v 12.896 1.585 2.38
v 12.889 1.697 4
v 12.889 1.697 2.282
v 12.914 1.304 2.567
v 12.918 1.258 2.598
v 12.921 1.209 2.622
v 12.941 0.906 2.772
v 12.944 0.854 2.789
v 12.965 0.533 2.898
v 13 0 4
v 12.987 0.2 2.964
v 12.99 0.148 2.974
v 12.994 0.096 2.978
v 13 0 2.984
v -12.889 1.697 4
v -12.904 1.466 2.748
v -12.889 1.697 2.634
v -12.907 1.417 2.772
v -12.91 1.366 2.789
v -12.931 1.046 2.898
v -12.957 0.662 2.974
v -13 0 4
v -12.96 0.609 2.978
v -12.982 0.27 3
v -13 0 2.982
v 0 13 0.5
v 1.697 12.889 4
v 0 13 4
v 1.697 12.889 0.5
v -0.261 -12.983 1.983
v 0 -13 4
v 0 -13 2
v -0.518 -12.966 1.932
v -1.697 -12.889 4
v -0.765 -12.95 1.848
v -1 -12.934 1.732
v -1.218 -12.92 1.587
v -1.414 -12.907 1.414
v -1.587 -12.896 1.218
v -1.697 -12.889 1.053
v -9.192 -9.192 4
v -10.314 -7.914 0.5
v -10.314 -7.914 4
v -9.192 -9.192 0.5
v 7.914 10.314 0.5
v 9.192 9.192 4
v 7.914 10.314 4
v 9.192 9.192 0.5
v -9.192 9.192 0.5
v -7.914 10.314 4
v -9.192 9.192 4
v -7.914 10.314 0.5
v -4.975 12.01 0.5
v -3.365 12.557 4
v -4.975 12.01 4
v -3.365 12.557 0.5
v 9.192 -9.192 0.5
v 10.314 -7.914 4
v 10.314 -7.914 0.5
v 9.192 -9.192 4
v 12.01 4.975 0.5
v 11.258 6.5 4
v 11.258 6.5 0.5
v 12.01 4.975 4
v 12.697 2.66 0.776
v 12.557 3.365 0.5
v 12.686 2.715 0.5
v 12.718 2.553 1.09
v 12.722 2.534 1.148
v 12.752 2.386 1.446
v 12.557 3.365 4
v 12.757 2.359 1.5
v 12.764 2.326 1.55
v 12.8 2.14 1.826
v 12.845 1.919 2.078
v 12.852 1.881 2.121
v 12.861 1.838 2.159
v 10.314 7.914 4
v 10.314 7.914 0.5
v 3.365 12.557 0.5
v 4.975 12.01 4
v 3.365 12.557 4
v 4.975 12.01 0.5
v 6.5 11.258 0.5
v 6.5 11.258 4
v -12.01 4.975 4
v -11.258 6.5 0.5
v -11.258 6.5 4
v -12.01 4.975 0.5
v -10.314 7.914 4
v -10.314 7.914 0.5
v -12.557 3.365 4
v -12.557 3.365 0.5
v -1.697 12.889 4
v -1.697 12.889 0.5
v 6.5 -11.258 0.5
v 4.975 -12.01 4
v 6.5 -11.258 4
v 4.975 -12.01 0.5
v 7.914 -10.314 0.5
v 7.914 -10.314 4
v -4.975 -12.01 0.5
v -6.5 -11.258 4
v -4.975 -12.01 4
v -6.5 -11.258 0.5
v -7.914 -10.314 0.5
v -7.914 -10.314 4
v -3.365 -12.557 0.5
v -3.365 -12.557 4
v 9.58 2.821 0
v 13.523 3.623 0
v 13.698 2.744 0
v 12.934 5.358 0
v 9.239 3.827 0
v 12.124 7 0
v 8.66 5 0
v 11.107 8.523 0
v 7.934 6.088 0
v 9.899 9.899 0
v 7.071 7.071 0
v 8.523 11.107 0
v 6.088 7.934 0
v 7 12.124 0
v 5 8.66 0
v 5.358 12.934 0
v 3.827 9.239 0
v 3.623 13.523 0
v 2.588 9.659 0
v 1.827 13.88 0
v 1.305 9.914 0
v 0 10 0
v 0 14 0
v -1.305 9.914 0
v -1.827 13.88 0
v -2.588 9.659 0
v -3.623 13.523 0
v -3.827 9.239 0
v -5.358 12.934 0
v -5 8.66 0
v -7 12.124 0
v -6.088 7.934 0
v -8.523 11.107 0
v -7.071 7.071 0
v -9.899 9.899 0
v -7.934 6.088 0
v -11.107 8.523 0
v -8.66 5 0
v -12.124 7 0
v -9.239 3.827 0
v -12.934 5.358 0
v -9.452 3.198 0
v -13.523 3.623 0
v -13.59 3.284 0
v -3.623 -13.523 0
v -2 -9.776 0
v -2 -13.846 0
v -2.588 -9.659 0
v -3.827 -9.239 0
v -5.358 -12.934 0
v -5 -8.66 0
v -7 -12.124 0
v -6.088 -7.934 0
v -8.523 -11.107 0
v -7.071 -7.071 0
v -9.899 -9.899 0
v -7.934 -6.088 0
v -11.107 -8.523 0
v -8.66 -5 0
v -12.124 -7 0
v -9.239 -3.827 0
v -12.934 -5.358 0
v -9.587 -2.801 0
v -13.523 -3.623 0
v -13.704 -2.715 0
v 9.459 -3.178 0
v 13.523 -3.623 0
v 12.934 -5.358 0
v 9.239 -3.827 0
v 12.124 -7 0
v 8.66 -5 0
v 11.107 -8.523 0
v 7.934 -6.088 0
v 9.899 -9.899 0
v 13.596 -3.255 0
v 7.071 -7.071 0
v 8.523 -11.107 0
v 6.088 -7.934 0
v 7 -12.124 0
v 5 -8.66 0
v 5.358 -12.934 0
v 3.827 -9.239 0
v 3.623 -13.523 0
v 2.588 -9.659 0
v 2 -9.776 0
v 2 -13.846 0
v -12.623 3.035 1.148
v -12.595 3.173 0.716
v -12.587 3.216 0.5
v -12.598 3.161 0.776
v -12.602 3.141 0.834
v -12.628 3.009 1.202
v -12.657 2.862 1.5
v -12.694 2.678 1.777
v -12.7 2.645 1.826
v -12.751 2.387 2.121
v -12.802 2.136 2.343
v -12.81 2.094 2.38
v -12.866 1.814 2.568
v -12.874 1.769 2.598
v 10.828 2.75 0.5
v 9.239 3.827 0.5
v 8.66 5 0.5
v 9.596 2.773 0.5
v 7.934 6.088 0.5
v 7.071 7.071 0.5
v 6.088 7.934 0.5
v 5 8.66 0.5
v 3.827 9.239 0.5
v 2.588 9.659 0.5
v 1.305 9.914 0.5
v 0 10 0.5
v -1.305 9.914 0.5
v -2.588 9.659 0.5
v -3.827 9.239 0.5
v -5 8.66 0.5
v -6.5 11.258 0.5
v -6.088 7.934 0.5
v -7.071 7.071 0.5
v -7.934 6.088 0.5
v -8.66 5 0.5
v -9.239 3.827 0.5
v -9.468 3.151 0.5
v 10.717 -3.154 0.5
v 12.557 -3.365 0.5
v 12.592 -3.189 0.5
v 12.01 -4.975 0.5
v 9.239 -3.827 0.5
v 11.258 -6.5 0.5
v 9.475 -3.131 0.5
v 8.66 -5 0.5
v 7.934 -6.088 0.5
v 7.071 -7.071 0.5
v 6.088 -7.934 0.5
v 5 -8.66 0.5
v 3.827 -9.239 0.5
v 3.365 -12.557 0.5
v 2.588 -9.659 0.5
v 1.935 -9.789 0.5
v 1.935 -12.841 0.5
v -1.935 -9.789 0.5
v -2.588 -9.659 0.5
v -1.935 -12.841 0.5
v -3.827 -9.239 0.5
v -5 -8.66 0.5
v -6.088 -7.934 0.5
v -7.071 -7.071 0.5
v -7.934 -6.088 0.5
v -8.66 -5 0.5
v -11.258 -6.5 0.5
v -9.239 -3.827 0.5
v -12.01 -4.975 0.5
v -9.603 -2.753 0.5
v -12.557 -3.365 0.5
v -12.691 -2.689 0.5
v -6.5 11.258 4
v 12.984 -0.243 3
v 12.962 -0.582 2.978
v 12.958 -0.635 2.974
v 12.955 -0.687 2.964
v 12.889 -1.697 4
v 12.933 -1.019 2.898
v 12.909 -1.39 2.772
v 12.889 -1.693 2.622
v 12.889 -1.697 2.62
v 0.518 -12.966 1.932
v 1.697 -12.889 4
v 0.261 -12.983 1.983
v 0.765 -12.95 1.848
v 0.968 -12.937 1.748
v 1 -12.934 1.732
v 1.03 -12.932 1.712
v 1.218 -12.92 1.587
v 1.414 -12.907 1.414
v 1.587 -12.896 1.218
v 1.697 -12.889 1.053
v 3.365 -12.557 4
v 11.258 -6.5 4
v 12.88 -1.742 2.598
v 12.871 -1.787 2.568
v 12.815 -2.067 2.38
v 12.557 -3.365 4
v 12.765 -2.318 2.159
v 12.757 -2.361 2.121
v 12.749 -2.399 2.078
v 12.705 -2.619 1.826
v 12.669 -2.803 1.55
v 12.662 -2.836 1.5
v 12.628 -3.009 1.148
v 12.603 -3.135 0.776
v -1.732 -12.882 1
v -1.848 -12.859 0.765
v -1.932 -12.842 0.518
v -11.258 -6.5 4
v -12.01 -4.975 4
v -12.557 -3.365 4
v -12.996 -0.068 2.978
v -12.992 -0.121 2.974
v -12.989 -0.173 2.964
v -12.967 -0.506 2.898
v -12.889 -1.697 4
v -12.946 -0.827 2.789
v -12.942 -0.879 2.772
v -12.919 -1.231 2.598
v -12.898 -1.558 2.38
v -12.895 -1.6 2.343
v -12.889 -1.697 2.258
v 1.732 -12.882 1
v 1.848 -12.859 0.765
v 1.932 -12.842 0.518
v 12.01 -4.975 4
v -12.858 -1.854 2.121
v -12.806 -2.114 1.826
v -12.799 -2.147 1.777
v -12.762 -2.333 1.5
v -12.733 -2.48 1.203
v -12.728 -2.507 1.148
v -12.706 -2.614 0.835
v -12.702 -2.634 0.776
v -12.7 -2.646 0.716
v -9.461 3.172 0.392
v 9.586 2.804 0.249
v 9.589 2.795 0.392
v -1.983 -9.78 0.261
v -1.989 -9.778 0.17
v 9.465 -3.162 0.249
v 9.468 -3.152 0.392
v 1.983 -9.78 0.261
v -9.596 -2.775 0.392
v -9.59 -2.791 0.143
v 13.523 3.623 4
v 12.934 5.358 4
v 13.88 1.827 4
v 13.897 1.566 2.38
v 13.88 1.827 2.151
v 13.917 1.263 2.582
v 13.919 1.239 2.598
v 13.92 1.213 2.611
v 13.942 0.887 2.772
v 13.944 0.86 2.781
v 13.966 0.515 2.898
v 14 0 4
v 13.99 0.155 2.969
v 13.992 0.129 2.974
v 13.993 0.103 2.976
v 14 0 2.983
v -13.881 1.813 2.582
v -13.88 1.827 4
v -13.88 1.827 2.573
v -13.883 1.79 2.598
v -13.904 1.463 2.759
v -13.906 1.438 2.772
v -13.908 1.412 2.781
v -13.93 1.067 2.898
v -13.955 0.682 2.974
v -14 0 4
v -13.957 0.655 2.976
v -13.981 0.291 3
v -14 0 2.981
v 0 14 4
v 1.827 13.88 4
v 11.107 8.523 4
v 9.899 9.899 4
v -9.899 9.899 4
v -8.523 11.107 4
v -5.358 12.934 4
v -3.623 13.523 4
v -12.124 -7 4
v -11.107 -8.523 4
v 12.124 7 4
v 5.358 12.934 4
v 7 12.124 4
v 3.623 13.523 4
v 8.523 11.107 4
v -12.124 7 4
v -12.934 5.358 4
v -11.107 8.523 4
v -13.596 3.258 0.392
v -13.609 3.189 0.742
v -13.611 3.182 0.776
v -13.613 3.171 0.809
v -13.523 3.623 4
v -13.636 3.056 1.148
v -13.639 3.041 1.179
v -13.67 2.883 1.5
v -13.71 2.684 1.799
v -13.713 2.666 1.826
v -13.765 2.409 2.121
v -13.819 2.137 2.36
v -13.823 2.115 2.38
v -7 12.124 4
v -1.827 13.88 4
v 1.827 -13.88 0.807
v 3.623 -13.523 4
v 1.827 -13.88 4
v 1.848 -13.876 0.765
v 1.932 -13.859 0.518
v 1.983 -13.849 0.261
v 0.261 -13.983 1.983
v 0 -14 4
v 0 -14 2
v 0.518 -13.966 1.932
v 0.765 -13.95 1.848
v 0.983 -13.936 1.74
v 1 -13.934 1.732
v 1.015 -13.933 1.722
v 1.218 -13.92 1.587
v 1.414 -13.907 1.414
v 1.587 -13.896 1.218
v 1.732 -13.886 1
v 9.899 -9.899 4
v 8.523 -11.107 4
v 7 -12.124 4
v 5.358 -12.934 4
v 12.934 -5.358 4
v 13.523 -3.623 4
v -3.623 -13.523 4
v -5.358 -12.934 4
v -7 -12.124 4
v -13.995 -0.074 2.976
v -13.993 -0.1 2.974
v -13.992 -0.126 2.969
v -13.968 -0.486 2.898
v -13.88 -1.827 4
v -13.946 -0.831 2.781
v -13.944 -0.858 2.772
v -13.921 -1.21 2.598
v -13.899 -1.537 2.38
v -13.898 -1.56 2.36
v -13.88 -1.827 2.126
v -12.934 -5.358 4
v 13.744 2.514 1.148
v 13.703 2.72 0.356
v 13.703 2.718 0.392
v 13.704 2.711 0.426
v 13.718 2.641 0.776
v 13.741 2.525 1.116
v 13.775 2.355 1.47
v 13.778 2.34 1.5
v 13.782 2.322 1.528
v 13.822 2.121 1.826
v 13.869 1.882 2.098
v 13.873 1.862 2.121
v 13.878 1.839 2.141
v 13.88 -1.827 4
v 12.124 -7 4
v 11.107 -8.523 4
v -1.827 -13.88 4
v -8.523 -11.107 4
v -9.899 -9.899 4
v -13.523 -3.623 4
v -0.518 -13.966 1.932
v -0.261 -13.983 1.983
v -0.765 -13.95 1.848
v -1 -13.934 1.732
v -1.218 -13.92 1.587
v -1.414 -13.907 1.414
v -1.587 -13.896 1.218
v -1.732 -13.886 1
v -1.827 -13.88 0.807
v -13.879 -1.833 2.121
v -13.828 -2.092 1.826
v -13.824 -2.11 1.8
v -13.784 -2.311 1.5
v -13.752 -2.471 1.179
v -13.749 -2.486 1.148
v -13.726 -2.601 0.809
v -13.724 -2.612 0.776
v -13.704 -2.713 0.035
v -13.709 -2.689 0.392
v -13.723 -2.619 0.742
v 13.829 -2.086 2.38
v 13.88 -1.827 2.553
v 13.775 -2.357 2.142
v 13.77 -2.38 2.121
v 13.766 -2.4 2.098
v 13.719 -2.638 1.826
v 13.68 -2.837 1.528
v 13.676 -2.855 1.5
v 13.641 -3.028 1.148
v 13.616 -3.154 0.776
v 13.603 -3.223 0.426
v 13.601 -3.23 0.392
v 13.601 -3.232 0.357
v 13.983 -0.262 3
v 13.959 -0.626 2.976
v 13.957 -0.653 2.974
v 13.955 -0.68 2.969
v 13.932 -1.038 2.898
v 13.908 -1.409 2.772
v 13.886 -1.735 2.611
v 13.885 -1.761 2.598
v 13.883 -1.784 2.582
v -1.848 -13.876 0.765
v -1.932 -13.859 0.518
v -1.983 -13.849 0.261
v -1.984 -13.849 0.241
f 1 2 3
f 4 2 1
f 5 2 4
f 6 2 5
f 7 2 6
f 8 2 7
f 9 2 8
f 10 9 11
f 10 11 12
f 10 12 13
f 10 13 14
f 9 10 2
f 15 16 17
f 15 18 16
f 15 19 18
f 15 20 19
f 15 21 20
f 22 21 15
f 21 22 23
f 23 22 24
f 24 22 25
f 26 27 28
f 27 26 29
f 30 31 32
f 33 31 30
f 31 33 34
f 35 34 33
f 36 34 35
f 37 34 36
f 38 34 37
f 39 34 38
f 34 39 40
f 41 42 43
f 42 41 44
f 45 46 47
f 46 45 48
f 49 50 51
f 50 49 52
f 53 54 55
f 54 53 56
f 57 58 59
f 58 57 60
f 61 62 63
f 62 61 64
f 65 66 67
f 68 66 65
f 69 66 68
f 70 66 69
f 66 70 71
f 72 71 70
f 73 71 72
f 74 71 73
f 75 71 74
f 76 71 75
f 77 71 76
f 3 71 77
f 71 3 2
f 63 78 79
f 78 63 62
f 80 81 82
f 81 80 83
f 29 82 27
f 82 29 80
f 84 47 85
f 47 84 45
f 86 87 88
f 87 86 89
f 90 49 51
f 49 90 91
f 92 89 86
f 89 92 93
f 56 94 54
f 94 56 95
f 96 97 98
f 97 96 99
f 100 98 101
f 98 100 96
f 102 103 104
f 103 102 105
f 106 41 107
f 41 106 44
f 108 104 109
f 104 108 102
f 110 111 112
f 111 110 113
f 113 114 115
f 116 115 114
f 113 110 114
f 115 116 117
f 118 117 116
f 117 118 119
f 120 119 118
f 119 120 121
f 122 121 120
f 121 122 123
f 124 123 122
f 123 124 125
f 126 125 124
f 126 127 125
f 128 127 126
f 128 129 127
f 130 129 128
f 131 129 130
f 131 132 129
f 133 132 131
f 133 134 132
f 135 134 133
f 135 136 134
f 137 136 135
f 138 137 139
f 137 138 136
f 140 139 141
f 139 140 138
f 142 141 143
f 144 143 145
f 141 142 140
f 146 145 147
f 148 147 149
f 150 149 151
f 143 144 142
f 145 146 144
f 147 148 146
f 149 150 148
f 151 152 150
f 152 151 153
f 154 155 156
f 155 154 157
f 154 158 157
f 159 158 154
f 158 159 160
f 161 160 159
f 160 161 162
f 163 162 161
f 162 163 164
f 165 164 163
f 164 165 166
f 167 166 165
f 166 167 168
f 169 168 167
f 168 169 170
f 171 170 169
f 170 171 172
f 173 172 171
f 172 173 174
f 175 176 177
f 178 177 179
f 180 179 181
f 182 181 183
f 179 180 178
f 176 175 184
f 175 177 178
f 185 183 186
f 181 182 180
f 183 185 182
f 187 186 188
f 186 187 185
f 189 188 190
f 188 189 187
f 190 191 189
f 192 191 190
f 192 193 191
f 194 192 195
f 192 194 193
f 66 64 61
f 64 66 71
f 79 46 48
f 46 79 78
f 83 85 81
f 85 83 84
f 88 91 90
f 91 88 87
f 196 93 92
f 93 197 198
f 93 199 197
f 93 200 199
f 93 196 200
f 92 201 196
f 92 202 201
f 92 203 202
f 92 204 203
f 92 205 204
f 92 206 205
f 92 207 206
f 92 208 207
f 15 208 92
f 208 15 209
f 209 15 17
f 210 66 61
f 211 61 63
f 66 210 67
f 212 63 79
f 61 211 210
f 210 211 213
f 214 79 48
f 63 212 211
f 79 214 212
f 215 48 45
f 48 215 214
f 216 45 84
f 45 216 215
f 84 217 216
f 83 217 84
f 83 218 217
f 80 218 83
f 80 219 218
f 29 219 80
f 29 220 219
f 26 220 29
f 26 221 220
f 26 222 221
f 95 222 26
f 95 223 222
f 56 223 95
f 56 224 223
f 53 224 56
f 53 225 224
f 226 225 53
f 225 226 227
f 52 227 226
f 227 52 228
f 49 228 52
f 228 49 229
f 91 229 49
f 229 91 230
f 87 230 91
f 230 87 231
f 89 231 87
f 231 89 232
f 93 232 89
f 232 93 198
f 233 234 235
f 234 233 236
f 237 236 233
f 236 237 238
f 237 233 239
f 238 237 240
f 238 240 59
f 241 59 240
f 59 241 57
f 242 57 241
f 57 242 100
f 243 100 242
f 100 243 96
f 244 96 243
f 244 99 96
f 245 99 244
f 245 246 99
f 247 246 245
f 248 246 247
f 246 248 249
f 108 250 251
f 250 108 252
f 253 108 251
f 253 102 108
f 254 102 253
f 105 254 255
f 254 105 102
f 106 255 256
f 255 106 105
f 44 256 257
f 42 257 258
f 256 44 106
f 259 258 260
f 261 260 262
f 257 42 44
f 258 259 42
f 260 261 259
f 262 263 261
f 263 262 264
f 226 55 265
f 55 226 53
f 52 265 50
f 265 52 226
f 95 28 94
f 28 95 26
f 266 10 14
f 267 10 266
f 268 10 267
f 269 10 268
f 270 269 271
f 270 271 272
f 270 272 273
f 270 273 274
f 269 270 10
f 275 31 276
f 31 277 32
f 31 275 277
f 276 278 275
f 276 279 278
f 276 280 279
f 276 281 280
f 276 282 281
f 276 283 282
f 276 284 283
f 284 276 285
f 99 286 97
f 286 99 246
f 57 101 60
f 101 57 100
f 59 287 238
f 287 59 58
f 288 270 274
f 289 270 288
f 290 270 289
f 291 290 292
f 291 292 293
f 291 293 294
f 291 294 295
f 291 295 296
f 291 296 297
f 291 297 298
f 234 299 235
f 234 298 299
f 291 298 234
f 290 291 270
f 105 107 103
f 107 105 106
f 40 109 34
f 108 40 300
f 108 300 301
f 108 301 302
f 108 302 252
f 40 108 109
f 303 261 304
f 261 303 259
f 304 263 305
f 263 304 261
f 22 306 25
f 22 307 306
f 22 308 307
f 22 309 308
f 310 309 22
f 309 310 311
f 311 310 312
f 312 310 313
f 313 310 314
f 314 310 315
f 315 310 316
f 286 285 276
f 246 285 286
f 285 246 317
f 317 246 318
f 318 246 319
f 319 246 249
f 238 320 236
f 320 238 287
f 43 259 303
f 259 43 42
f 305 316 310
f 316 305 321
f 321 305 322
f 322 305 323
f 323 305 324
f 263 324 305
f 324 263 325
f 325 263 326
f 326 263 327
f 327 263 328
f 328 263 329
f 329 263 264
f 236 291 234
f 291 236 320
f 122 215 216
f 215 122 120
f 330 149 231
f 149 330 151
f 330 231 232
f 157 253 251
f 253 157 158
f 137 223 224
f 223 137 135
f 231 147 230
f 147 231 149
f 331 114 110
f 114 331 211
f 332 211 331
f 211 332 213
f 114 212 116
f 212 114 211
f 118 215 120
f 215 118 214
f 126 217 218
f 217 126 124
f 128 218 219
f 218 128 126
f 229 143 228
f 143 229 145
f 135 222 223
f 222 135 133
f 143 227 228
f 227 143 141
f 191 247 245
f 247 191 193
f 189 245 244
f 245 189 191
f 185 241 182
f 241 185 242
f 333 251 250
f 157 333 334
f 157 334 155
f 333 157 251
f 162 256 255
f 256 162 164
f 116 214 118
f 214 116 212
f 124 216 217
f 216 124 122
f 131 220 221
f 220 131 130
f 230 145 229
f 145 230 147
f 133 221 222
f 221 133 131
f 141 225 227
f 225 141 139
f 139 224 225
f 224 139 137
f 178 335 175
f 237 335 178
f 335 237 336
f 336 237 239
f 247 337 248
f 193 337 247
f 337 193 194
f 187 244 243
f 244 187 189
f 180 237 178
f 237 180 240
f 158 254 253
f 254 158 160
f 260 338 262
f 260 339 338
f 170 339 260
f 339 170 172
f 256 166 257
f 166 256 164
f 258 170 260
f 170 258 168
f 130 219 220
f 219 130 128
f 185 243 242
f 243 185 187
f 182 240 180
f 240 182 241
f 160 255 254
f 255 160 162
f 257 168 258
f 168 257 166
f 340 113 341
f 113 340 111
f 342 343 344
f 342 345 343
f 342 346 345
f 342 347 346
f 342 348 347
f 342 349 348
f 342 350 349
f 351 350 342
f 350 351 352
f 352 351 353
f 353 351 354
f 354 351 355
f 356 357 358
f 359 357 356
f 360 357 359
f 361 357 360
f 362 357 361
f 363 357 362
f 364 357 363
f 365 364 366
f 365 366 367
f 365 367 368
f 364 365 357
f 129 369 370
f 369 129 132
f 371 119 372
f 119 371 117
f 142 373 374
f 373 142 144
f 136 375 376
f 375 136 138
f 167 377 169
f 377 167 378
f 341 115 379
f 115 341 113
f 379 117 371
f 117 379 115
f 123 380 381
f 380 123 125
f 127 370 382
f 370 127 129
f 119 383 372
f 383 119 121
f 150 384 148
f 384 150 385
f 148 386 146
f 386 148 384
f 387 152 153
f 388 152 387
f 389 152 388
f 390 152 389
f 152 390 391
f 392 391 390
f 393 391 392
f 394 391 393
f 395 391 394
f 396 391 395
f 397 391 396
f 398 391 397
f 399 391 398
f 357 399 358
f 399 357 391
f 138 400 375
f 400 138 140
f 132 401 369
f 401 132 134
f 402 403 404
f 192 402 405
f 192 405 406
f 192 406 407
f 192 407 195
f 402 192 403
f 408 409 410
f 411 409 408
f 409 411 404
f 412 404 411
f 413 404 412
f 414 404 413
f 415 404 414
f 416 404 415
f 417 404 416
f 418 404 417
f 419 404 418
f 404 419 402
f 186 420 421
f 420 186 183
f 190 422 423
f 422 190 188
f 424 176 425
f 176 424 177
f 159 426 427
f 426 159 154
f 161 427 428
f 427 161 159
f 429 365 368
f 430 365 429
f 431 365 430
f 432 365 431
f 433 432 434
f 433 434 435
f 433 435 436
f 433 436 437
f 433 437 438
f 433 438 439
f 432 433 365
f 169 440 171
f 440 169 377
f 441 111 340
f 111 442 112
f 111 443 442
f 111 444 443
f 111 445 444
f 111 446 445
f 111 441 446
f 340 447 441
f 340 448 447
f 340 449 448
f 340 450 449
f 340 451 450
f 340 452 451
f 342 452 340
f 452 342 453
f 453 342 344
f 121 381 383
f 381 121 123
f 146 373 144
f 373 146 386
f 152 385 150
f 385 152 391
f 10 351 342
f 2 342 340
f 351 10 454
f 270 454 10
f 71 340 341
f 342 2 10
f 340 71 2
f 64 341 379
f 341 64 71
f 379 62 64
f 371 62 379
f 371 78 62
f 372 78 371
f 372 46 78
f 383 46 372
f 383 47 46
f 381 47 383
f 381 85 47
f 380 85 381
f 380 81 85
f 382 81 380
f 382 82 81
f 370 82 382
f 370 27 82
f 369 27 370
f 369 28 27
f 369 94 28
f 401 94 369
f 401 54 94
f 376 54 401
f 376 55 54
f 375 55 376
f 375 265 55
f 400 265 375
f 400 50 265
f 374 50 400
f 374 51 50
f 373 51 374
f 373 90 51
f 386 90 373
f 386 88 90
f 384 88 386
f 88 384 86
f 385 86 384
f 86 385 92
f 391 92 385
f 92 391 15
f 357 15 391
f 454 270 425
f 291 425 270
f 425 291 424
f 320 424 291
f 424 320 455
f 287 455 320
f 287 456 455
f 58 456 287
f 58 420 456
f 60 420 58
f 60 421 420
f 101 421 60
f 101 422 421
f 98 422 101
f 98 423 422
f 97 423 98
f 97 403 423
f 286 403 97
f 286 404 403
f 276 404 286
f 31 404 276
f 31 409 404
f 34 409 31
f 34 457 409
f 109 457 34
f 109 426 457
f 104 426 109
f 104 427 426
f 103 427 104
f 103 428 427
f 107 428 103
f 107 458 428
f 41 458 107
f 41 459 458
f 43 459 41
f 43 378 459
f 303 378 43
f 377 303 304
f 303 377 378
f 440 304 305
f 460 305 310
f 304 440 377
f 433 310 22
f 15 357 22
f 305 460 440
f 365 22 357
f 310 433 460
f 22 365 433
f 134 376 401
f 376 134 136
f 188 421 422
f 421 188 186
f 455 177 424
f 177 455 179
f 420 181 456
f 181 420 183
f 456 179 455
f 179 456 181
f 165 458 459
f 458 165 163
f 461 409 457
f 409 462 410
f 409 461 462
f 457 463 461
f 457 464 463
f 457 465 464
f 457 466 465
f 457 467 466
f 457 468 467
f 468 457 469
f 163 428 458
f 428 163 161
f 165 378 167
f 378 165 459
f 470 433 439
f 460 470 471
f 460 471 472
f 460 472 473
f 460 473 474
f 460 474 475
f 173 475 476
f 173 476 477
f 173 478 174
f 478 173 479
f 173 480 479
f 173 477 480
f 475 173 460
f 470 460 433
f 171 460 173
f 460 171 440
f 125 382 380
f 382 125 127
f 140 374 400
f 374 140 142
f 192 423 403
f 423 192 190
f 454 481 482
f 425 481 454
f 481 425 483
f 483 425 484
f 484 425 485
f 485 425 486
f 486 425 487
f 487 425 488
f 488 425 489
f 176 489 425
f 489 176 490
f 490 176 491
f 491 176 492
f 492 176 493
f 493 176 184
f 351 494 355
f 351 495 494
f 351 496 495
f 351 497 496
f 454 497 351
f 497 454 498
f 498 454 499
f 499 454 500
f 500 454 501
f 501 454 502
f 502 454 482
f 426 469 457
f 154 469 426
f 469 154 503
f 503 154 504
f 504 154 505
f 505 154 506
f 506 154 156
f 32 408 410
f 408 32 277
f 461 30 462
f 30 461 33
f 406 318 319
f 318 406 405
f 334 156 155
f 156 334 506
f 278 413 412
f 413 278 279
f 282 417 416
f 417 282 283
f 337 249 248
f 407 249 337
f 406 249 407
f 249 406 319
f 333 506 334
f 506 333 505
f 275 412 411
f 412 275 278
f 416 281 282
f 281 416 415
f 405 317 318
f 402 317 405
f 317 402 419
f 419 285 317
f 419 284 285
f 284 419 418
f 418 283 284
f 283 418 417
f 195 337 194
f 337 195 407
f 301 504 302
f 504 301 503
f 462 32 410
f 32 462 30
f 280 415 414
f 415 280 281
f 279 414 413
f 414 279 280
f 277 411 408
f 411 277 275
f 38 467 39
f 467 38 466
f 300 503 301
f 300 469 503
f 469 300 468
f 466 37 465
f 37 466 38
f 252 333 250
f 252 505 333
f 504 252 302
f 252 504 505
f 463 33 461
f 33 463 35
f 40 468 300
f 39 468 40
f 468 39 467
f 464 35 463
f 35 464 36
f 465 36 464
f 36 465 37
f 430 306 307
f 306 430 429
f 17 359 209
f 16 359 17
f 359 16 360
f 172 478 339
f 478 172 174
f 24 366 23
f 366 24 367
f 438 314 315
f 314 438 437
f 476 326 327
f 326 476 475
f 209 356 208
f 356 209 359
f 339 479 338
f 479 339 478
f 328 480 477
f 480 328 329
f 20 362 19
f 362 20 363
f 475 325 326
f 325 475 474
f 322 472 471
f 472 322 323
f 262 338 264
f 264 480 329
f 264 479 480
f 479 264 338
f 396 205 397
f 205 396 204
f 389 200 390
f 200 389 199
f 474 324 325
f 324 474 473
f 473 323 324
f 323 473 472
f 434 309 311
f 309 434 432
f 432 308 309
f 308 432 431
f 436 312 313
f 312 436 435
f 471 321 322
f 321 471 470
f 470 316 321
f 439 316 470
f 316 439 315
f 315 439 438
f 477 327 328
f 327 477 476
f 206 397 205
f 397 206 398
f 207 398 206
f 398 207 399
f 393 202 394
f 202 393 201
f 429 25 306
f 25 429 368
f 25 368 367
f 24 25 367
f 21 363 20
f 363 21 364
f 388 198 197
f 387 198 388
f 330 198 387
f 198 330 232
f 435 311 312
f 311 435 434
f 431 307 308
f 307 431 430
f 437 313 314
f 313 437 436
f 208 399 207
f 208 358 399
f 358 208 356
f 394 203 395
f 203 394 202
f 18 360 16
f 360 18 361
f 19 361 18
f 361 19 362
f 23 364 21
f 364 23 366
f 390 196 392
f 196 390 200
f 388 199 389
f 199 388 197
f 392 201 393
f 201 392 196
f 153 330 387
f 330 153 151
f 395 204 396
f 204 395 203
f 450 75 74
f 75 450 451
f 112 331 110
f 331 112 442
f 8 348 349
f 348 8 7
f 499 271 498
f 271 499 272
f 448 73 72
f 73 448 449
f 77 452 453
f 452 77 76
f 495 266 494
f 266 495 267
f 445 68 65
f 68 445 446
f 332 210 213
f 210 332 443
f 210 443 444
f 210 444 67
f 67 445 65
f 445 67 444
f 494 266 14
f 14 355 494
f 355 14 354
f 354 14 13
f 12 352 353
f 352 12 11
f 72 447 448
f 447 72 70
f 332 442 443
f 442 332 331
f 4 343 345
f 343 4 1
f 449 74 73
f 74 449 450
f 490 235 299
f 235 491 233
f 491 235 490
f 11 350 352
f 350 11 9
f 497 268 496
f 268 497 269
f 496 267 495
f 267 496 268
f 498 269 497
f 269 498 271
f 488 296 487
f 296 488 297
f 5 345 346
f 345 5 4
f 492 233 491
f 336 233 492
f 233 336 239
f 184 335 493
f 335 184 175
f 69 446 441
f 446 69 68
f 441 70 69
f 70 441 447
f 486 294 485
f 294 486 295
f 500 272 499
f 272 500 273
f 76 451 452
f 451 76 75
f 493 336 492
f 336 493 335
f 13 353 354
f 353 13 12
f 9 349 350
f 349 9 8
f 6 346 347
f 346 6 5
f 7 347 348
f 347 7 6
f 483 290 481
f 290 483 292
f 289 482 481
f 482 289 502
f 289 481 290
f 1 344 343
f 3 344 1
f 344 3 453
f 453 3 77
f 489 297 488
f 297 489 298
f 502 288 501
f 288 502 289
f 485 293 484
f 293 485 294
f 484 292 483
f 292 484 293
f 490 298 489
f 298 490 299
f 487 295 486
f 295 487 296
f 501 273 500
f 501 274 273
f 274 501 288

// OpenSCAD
// file: ../build_environments.scad
// build_environments.scad: modules to build level sections
//

module pool(diameter=10.0, wall_height=2.0, step_width=3.0, connections=[])
{
    difference() {
        union() {
        difference() {
            cylinder(h=0.5,r1=diameter+step_width,r2=diameter+step_width,$fn=48);
            translate([0,0,-0.1])
                cylinder(h=0.7,r1=diameter,r2=diameter,$fn=48);
        }
        difference() {
            cylinder(h=wall_height,r1=diameter+step_width+1.0,r2=diameter+step_width+1.0,$fn=48);
            translate([0,0,-0.1])
                cylinder(h=wall_height+0.2,r1=diameter+step_width,r2=diameter+step_width,$fn=48);
        }
        }
    
        for (c = connections)
        {
            rotate([0,90,0]) {
                angle = atan2(c[1],c[0]);
                rotate([-angle,0,0]) {
                    cylinder(h=diameter+5.0,r1=c[2],r2=c[2],$fn=48);
                }
            }
        }
    }
}

module straight(length=10.0, width=2.0, dy1=0.0, dy2=0.0, dz=0.0)
{
    dims = [0, 0, 0, 0, 0, (dz/length)];
    matrix = [
        [ 1, dims[0], dims[1], 0 ],
        [ dims[2], 1, dims[4], 0 ],
        [ dims[5], dims[3], 1, 0 ],
        [ 0, 0, 0, 1 ]
    ];
    multmatrix(matrix)
    difference() {
        translate([dy1,0,0])
        union() {
            rotate([0,90,0]) {
                difference() {
                    cylinder(h=(length-dy1-dy2),r1=width+1.0,r2=width+1.0,$fn=24);
                    translate([0,0,-0.1])
                        cylinder(h=(length-dy1-dy2+0.2),r1=width,r2=width,$fn=24);
                }
                difference() {
                    cylinder(h=1.0,r1=width+2.0,r2=width+2.0,$fn=24);
                    translate([0,0,-0.1])
                        cylinder(h=1.2,r1=width,r2=width,$fn=24);
                }
                translate([0,0,(length-dy1-dy2)-1.0]) {
                    difference() {
                        cylinder(h=1.0,r1=width+2.0,r2=width+2.0,$fn=24);
                        translate([0,0,-0.1])
                            cylinder(h=1.2,r1=width,r2=width,$fn=24);
                    }
                }
            }
        }
        translate([0,0,-(2*width+4.0)/2])
            cube([3*length,3*length,2*width+4.0],center=true);
    }
}

module curve(p0=[0,0], center=[0,0], dir=1, angle=0.0, width=2.0)
{
    radius = sqrt((p0[0]-center[0])*(p0[0]-center[0]) + (p0[1]-center[1])*(p0[1]-center[1]));
    if (dir == 0) {
        difference() {
            rotate([0,0,-90])
            difference() {
                rotate_extrude(angle = angle, convexity = 10, $fn=32)
                    translate([radius, 0, 0])
                        circle(r = width+1.0,$fn=24);
                rotate([0,0,-1.0])
                    rotate_extrude(angle = angle+2.0, convexity = 10, $fn=32)
                        translate([radius, 0, 0])
                            circle(r = width,$fn=24);
            }
            translate([0,0,-(2*width+4.0)/2])
                cube([5*radius,5*radius,2*width+4.0],center=true);
        }
    }
    else {
        difference() {
            rotate([0,0,90])
            difference() {
                rotate_extrude(angle = -angle, convexity = 10, $fn=32)
                    translate([radius, 0, 0])
                        circle(r = width+1.0,$fn=24);
                rotate([0,0,1.0])
                    rotate_extrude(angle = -angle-2.0, convexity = 10, $fn=32)
                        translate([radius, 0, 0])
                            circle(r = width,$fn=24);
            }
            translate([0,0,-(2*width+4.0)/2])
                cube([5*radius,5*radius,2*width+4.0],center=true);
        }
    }

}

// test pool
//pool(diameter=12.0000, wall_height=3.0000, step_width=3.0000, connections=[[0.0000,-26.0000,2.0000], [23.6074,0.0000,2.0000]]);

// test straight, slope
//straight(length=26.0000, width=2.0000, dy1=11.8322, dy2=6.7082, dz=0.0000);
//straight(length=29.1549, width=12.0000, dy1=0.0000, dy2=0.0000, dz=-15.0000);

// test curve
//curve(p0=[23.6074, 0.0000], center=[23.6074, 5.0000], dir=0, angle=60.1011, width=2.0000);
//curve(p0=[33.6426, 12.4219], center=[37.9771, 9.9295], dir=1, angle=120.4627, width=2.0000);
// main file
use <../build_environments.scad>;
pool(diameter=10.0000, wall_height=4.0000, step_width=3.0000, connections=[[0.0000,-25.0000,2.0000], [-13.1041,0.2730,3.0000], [14.9063,-0.2795,3.0000]]);
